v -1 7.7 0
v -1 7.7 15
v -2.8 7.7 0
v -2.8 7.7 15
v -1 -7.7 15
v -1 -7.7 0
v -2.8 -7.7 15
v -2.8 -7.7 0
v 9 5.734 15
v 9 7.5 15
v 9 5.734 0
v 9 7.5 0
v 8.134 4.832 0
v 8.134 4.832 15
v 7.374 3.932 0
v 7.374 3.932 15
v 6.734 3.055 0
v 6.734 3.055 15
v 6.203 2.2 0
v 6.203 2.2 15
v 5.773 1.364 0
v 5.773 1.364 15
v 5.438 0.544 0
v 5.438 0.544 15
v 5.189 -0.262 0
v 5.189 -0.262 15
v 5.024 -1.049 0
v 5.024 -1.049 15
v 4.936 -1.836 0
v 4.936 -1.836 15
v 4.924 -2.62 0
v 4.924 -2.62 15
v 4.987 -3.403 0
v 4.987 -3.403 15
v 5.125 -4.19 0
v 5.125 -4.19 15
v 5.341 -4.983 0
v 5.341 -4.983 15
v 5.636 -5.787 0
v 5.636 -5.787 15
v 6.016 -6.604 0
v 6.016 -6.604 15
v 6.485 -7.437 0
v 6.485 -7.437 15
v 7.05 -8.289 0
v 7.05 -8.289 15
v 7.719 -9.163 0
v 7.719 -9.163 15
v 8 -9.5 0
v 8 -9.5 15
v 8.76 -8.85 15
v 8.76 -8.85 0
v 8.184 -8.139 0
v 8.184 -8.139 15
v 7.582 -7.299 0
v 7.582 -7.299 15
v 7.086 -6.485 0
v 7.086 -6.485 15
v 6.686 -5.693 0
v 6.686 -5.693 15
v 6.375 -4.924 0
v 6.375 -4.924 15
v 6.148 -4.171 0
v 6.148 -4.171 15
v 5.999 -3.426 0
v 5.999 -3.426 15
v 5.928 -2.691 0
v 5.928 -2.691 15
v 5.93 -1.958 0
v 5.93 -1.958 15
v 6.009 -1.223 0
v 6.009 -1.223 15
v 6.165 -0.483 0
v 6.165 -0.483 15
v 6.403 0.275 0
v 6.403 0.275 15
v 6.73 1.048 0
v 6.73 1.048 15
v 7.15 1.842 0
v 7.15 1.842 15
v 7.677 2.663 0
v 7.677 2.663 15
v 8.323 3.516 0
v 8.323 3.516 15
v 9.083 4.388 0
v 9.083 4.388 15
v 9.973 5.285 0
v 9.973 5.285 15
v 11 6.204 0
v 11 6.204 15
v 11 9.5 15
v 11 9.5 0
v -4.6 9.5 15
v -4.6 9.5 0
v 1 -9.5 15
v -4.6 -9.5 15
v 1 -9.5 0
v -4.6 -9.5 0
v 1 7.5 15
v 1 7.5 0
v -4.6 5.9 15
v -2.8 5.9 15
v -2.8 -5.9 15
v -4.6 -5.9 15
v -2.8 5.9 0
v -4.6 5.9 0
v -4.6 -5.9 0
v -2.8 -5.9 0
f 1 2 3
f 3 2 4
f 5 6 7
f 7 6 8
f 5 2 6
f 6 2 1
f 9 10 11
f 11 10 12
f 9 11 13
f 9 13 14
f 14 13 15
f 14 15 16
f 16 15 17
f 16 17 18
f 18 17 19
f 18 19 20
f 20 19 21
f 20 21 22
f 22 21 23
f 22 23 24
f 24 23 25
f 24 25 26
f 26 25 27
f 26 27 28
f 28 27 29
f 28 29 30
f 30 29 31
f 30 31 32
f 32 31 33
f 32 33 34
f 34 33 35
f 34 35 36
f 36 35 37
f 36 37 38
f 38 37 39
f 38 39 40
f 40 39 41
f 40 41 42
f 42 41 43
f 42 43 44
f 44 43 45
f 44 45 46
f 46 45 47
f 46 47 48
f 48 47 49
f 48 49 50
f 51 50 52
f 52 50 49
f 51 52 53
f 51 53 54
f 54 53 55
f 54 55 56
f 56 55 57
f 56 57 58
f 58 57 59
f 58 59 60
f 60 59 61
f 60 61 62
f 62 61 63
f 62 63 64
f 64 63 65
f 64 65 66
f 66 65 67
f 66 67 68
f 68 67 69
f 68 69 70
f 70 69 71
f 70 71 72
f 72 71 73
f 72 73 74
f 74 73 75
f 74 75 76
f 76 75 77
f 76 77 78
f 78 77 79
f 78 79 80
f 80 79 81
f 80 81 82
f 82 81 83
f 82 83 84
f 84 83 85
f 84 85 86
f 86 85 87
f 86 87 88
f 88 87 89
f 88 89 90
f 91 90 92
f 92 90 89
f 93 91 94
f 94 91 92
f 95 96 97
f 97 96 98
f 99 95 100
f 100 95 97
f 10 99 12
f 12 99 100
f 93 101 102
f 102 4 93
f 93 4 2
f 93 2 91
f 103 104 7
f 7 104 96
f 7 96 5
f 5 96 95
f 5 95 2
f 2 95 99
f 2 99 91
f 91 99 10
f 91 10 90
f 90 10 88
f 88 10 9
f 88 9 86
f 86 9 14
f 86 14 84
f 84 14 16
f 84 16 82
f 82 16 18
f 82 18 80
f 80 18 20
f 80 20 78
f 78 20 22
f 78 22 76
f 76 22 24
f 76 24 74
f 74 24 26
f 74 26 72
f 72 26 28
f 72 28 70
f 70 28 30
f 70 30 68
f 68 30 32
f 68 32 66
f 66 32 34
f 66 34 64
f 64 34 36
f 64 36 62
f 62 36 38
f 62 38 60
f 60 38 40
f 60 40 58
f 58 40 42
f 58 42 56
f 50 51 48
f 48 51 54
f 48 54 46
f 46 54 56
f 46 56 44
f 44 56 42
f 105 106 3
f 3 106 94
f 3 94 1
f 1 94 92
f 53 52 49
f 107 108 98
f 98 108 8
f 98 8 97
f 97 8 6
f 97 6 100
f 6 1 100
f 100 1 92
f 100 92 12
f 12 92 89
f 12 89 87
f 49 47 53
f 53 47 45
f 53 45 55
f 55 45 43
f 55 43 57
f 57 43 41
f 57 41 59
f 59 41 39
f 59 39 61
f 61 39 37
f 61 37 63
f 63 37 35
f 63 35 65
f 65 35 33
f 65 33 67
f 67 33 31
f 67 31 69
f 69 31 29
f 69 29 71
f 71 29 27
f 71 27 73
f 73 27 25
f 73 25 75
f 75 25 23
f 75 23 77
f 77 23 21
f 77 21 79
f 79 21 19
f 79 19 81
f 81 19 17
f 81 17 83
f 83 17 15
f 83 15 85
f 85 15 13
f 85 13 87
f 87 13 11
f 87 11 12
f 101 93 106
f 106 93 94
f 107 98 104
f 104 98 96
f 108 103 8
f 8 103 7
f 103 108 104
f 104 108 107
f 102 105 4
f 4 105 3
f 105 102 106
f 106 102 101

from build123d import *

# Parameters (mm, degrees)
AUFSATZ_LINEAR_AUSTRAGEN1_DEPTH = 15
SKIZZE8_W                       = 15
SKIZZE8_H                       = 1.8
AUFSATZ_LINEAR_AUSTRAGEN2_DEPTH = 3.6
SKIZZE9_W                       = 1.8
SKIZZE9_H                       = 15
AUFSATZ_LINEAR_AUSTRAGEN3_DEPTH = 1.8
SKIZZE10_W                      = 1.8
SKIZZE10_H                      = 15
AUFSATZ_LINEAR_AUSTRAGEN4_DEPTH = 1.8


# Read off the part's stored shape, not the designer's step: Aufsatz-Linear austragen1
with BuildPart() as part:
    # Aufsatz-Linear austragen1 outline → Aufsatz-Linear austragen1 (new body)
    with BuildSketch(Plane.XY):
        with BuildLine():
            Line((9, 7.5), (9, 5.734326374))
            add(Edge.make_bspline(
                [(9, 5.734326374), (1.374597046, -1.755638023), (8, -9.5)],
                knots=[0.105630562, 0.105630562, 0.105630562, 1, 1, 1], degree=2))
            Line((8, -9.5), (8.759868191, -8.849922825))
            add(Edge.make_bspline(
                [(11, 6.204093636), (10.807716783, 6.040836357), (10.227995606, 5.535038651), (9.02350357, 4.379363864), (7.631707894, 2.723931214), (6.526632736, 0.788286781), (5.948241105, -1.098227765), (5.864634496, -2.960727349), (6.26749431, -4.852517338), (7.040668693, -6.490456848), (7.923606451, -7.821764954), (8.477896684, -8.52033768), (8.759868191, -8.849922825)],
                knots=[0.032316638, 0.032316638, 0.032316638, 0.032316638, 0.0625, 0.125, 0.25, 0.375, 0.5, 0.625, 0.75, 0.875, 0.9375, 1, 1, 1, 1], degree=3))
            Line((11, 6.204093636), (11, 9.5))
            Line((11, 9.5), (-1, 9.5))
            Line((-1, 9.5), (-1, -9.5))
            Line((-1, -9.5), (1, -9.5))
            Line((1, -9.5), (1, 7.5))
            Line((1, 7.5), (9, 7.5))
        make_face()
    extrude(amount=AUFSATZ_LINEAR_AUSTRAGEN1_DEPTH)

    # Skizze8 → Aufsatz-Linear austragen2 (add)
    with BuildSketch(Plane.ZY.offset(1)):
        with Locations((7.5, 8.6)):
            Rectangle(SKIZZE8_W, SKIZZE8_H)
        with Locations((7.5, -8.6)):
            Rectangle(SKIZZE8_W, SKIZZE8_H)
    extrude(amount=AUFSATZ_LINEAR_AUSTRAGEN2_DEPTH)

    # Skizze9 → Aufsatz-Linear austragen3 (add)
    with BuildSketch(Plane(origin=(0, -7.7, 0), x_dir=(1, 0, 0), z_dir=(0, 1, 0))):
        with Locations((-3.7, -7.5)):
            Rectangle(SKIZZE9_W, SKIZZE9_H)
    extrude(amount=AUFSATZ_LINEAR_AUSTRAGEN3_DEPTH)

    # Skizze10 → Aufsatz-Linear austragen4 (add)
    with BuildSketch(Plane.XZ.offset(-7.7)):
        with Locations((-3.7, 7.5)):
            Rectangle(SKIZZE10_W, SKIZZE10_H)
    extrude(amount=AUFSATZ_LINEAR_AUSTRAGEN4_DEPTH)


solid = part.part
